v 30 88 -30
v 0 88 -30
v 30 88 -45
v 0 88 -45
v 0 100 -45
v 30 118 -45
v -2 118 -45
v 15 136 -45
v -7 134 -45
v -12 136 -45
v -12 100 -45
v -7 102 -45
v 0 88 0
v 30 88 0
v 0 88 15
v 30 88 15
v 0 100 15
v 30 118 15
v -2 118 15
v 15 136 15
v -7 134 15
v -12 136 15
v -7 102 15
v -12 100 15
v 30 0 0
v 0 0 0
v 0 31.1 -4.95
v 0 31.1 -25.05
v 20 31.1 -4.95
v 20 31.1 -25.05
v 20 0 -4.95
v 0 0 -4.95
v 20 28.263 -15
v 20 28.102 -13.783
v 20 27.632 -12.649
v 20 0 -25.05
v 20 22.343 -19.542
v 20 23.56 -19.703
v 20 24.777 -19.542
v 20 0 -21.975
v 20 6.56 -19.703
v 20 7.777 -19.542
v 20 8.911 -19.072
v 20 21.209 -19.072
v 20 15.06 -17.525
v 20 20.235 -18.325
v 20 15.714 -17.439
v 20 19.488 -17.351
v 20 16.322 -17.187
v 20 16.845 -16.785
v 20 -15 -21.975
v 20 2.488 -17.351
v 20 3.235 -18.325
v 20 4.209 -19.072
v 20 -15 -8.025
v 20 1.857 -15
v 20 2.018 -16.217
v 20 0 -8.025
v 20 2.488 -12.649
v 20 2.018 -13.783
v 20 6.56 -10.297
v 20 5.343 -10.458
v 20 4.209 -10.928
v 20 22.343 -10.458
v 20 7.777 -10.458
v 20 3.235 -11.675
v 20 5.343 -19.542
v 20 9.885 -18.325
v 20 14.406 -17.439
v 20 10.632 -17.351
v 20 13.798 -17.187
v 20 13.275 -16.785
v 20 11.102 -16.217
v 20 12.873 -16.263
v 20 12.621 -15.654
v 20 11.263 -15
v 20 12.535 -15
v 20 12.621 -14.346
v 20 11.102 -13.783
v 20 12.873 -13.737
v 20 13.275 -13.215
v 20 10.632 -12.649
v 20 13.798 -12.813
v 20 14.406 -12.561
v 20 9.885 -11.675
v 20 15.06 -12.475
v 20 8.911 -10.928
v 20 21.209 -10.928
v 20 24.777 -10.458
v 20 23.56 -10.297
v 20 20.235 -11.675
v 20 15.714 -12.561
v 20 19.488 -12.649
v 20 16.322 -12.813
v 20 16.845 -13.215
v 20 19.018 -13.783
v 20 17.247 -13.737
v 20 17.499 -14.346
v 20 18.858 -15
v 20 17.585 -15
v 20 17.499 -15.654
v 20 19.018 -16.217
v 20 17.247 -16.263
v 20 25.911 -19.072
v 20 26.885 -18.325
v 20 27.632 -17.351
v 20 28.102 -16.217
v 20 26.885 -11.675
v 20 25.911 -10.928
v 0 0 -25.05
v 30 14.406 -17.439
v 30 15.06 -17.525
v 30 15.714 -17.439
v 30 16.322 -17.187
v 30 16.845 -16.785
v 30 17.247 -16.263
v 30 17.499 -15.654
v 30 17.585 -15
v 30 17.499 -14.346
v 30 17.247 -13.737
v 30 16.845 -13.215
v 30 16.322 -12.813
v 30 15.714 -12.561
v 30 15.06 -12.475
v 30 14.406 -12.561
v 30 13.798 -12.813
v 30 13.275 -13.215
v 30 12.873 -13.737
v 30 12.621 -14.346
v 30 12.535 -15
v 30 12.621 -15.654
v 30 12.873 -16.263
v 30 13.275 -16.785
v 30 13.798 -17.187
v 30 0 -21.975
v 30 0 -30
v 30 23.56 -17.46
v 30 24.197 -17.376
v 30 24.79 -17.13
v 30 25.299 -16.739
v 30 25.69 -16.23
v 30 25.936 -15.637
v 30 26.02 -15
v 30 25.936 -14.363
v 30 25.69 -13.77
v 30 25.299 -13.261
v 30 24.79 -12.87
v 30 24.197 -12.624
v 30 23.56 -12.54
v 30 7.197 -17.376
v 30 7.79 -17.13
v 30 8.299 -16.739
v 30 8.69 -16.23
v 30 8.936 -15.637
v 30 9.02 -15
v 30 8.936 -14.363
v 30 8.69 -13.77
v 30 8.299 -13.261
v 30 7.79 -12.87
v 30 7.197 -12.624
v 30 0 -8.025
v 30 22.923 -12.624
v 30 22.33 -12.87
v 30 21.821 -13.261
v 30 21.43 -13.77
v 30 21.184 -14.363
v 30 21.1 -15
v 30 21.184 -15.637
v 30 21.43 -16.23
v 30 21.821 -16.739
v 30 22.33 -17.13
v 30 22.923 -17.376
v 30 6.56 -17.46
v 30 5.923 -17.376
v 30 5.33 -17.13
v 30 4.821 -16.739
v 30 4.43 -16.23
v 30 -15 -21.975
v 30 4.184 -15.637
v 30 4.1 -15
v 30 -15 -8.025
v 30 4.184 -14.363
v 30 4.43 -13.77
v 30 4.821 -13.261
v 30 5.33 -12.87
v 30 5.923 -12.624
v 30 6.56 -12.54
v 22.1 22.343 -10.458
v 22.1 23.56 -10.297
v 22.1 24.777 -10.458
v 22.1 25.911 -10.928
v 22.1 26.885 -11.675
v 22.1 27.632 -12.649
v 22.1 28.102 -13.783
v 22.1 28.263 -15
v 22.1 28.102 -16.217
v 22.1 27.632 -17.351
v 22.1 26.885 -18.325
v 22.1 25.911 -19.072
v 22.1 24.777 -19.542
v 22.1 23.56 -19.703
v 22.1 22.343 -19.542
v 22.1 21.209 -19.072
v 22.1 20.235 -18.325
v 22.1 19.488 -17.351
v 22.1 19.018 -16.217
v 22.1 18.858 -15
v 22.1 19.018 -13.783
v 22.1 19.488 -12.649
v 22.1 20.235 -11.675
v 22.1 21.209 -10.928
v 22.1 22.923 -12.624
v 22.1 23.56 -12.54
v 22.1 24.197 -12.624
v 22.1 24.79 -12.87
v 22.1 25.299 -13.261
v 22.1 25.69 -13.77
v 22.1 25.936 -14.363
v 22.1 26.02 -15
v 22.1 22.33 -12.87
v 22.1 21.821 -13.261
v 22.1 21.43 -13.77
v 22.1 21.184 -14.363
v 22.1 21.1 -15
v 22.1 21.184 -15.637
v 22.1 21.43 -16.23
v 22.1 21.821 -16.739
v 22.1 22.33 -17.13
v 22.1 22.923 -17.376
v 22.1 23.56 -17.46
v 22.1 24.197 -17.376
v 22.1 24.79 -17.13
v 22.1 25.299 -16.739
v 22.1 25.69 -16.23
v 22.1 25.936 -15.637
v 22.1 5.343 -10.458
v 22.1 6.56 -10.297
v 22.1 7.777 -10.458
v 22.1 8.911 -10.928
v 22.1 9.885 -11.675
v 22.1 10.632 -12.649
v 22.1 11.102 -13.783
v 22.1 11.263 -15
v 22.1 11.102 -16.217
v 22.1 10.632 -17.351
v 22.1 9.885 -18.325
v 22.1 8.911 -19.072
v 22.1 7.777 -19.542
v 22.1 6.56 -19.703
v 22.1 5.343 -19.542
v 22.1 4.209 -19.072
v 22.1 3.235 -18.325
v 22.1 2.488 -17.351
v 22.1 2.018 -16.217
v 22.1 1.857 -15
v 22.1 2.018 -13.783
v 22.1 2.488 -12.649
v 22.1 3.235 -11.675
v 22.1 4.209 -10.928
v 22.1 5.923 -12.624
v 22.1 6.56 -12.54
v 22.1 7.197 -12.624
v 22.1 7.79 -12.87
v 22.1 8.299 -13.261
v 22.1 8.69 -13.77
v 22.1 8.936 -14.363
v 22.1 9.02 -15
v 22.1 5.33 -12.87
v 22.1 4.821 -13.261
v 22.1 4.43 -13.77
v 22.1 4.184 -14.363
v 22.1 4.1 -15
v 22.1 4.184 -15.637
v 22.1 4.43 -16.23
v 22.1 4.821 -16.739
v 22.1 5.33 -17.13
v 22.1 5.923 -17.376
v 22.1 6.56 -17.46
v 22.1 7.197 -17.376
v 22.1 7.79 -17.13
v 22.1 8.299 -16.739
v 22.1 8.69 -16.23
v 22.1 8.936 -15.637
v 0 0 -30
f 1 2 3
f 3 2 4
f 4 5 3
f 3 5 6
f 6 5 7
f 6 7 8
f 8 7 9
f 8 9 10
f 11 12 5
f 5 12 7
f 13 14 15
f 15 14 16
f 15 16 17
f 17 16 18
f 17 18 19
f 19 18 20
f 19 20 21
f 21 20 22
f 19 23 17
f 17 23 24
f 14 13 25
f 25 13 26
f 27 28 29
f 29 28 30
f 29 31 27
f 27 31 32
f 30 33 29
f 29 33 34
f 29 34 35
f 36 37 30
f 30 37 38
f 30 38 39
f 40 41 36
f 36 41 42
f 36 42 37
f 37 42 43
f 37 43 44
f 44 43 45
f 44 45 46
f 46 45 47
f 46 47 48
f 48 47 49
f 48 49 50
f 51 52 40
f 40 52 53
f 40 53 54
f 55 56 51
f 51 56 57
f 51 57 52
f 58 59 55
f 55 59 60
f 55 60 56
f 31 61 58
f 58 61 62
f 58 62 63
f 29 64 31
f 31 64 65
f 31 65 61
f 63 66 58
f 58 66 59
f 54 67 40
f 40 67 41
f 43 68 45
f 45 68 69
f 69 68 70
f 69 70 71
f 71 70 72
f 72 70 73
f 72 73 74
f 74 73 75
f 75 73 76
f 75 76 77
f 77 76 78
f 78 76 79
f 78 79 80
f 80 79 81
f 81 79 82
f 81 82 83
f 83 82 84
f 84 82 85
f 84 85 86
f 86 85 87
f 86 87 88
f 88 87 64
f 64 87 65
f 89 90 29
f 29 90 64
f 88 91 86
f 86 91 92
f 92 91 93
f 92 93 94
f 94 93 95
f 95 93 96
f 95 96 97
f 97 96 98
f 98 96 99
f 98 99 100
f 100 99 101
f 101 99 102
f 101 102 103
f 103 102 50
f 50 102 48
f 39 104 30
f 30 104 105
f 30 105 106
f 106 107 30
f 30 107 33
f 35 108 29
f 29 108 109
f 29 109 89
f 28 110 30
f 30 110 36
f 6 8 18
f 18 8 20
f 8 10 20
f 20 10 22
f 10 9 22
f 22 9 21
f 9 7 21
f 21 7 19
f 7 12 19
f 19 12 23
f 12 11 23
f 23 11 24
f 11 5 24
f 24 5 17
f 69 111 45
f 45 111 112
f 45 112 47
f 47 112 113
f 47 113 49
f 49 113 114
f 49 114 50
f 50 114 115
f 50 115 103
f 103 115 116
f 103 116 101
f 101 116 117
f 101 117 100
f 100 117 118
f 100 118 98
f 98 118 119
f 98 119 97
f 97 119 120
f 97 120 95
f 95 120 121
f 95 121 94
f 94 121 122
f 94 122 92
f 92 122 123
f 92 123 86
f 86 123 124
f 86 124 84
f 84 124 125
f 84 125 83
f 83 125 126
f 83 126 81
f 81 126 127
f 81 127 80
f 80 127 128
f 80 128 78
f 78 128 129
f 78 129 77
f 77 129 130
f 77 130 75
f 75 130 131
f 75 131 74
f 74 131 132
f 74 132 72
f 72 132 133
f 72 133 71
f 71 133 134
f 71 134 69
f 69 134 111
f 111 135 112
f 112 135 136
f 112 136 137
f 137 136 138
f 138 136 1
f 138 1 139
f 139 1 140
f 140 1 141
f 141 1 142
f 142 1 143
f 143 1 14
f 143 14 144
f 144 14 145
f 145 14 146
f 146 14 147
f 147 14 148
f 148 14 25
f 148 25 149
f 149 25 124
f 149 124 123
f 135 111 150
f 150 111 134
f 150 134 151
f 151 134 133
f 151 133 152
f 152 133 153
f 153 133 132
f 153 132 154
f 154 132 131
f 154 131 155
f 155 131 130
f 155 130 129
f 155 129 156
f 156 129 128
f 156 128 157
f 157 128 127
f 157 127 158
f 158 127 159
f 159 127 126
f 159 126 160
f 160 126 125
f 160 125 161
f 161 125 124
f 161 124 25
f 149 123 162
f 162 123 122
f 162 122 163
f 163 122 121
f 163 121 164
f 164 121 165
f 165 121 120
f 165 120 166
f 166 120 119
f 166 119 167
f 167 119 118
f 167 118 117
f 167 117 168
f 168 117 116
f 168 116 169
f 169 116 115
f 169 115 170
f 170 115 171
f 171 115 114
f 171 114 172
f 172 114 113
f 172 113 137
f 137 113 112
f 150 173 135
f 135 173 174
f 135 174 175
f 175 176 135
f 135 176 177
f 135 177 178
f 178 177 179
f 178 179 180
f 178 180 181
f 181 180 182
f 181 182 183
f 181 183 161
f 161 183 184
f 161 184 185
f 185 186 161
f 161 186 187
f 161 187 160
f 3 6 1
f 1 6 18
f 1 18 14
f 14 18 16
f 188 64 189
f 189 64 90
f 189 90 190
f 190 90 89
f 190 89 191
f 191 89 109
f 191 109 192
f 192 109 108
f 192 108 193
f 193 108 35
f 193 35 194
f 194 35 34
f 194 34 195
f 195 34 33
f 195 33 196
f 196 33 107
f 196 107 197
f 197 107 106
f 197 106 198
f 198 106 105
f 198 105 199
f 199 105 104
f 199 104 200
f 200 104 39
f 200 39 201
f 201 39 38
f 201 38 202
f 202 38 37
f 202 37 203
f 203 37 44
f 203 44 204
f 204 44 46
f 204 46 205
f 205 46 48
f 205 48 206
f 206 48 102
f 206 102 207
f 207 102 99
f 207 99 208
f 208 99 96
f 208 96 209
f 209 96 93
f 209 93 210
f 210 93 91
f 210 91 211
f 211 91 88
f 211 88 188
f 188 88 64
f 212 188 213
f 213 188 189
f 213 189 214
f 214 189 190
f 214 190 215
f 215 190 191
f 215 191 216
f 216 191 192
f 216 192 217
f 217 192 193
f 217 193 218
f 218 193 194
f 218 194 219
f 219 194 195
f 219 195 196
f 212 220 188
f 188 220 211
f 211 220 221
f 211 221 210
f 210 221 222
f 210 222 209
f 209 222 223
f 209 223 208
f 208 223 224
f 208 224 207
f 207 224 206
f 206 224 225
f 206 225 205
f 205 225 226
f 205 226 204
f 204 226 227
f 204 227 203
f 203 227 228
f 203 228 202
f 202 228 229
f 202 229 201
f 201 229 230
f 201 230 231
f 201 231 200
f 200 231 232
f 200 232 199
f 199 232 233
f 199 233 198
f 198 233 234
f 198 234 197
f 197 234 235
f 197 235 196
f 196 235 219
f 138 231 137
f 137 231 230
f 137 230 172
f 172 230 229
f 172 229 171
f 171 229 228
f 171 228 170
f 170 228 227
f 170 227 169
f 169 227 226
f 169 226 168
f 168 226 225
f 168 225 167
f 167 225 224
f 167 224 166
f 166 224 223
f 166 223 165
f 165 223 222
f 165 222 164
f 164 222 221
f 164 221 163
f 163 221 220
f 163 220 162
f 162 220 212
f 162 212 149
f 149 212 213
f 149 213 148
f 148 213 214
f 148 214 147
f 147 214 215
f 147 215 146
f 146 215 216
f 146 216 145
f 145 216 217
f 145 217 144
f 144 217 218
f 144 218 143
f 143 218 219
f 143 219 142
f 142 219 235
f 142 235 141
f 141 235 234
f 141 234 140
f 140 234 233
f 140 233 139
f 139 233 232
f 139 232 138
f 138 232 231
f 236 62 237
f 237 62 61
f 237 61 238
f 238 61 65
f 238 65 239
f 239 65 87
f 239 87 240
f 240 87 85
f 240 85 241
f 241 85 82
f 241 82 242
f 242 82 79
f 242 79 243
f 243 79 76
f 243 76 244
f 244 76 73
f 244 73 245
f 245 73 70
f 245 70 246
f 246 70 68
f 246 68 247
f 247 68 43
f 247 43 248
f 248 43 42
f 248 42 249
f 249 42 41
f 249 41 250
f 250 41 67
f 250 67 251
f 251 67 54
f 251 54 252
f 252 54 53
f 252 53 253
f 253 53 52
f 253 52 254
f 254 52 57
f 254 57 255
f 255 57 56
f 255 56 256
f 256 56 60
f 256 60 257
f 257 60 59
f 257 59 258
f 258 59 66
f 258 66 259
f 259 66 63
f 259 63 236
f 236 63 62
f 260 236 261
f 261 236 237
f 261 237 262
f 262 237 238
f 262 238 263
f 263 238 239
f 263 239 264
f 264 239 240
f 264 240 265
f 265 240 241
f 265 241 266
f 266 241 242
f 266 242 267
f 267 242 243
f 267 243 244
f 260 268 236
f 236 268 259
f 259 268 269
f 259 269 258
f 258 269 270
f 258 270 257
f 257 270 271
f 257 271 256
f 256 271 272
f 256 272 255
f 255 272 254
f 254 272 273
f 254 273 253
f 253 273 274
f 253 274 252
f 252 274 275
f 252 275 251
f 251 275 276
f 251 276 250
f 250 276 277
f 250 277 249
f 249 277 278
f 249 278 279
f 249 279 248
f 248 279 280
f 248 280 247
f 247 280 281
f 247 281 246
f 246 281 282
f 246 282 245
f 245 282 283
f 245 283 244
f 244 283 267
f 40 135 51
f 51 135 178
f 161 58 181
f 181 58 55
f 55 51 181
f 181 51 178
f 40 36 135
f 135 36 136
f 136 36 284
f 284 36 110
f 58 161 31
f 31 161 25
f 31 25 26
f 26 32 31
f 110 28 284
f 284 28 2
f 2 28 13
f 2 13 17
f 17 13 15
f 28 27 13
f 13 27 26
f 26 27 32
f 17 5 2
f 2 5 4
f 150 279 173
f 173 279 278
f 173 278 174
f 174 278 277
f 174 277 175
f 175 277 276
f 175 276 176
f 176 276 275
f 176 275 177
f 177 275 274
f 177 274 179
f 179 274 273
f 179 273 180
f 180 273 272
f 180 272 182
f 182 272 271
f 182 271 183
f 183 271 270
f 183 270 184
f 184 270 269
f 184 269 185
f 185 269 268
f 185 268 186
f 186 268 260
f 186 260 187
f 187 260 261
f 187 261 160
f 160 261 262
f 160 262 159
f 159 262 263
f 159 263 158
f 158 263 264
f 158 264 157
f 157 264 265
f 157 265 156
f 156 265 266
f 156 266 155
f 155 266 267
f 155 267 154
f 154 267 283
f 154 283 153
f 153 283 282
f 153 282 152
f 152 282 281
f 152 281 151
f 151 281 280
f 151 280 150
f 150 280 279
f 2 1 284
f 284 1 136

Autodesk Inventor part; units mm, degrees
ref_plane "YZ Plane" through (0, 0, 0) normal (1, 0, 0) x (0, 1, 0)
ref_plane "XZ Plane" through (0, 0, 0) normal (0, 1, 0) x (-1, 0, 0)
sketch "Sketch1" plane through (0, 0, 0) normal (0, 0, 1) x (1, 0, 0)
  line L0 (0, 0) -> (25, 0)
  line L1 (25, 0) -> (25, 40)
  line L2 (25, 40) -> (0, 40)
  line L3 (0, 40) -> (0, 0)
  dimension "d1" = 25
  dimension "d2" = 40
  dimension "d3" = 25
extrude "Extrusion1" add sketch "Sketch1" against normal blind 30
sketch "Sketch2" plane through (25, 0, 0) normal (1, 0, 0) x (0, 0, -1)
  line L0 (0, 0) -> (30, 0) projected
  circle A0 centre (15, 6.56) radius 2.46
extrude "Extrusion2" cut sketch "Sketch2" against normal blind 30
sketch "Sketch3" plane through (0, 0, 0) normal (-1, 0, 0) x (0, 0, 1)
  line L0 (0, 0) -> (-30, 0) projected
  line L1 (-25.05, 0) -> (-4.95, 0)
  line L2 (-4.95, 0) -> (-4.95, 33.12)
  line L3 (-4.95, 33.12) -> (-25.05, 33.12)
  line L4 (-25.05, 33.12) -> (-25.05, 0)
  dimension "d11" = 20.1
extrude "Extrusion3" cut sketch "Sketch3" against normal blind 20
sketch "Sketch4" plane through (0, 0, 0) normal (0, -1, 0) x (1, 0, 0)
  line L0 (20, -4.95) -> (20, -25.05) projected
  line L1 (20, -15) -> (25, -15)
  line L2 (25, 0) -> (25, -30) projected
  line L3 (20, -8.025) -> (25, -8.025)
  line L4 (25, -8.025) -> (25, -21.975)
  line L5 (25, -21.975) -> (20, -21.975)
  line L6 (20, -21.975) -> (20, -8.025)
  line L7 (20, -8.025) -> (25, -21.975) construction
  line L8 (25, -8.025) -> (20, -21.975) construction
  line L9 (25, -12.54) -> (25, -17.46) projected
  point P0 (0, 0)
  point P1 (22.5, -15)
  dimension "d14" = 13.95
extrude "Extrusion4" add sketch "Sketch4" along normal blind 15
sketch "Sketch5" plane through (20, 0, 0) normal (-1, 0, 0) x (0, 0, 1)
  circle A0 centre (-15, 6.56) radius 2.46 projected
  circle A1 centre (-15, 6.56) radius 4.7025
  circle A2 centre (-15, 6.56) radius 2.46 projected
  circle A3 centre (-15, 6.56) radius 2.46
  point P0 (0, 0)
  dimension "d17" = 9.405
extrude "Extrusion5" cut sketch "Sketch5" against normal blind 2.1
sketch "Sketch6" plane through (25, 0, 0) normal (1, 0, 0) x (0, 0, -1)
  circle A0 centre (15, 6.56) radius 4.7025 projected
  line L0 (15, 6.56) -> (15, 23.56)
  circle A1 centre (15, 23.56) radius 2.46
  point P0 (0, 0)
  dimension "d20" = 17
  dimension "d21" = 4.92
extrude "Extrusion6" cut sketch "Sketch6" against normal blind 10 contours A1
sketch "Sketch7" plane through (20, 0, 0) normal (-1, 0, 0) x (0, 0, 1)
  circle A0 centre (-15, 23.56) radius 2.46 projected
  circle A1 centre (-15, 23.56) radius 4.7025
  point P0 (0, 0)
  dimension "d24" = 9.405
extrude "Extrusion7" cut sketch "Sketch7" against normal blind 2.1
sketch "Sketch9" plane through (25, 0, 0) normal (1, 0, 0) x (0, 0, -1)
  circle A0 centre (15, 6.56) radius 2.46 projected
  circle A1 centre (15, 6.56) radius 2.46
  circle A2 centre (15, 23.56) radius 2.46 projected
  circle A3 centre (15, 23.56) radius 2.46
  line L0 (30, 40) -> (30, 0) projected
  line L1 (30, 0) -> (30, 40)
  line L2 (30, 40) -> (0, 40)
  line L3 (0, 40) -> (0, 0)
  line L4 (0, 0) -> (8.025, 0) projected
  line L5 (21.975, 0) -> (21.975, -15)
  line L6 (21.975, -15) -> (8.025, -15)
  line L7 (8.025, -15) -> (8.025, 0)
  line L8 (0, 0) -> (8.025, 0)
  line L9 (21.975, 0) -> (30, 0)
extrude "Extrusion8" add sketch "Sketch9" along normal blind 5
sketch "Sketch10" plane through (0, 40, 0) normal (0, 1, 0) x (1, 0, 0)
  line L0 (0, 30) -> (30, 30) projected
  line L1 (30, 0) -> (0, 0) projected
  line L2 (0, 30) -> (30, 30)
  line L3 (30, 30) -> (30, 0)
  line L4 (30, 0) -> (0, 0)
  line L5 (0, 0) -> (0, 30)
extrude "Extrusion9" add sketch "Sketch10" along normal blind 30
sketch "Sketch12" plane through (30, 0, 0) normal (1, 0, 0) x (0, 0, -1)
  circle A0 centre (15, 6.56) radius 2.46 projected
  line L0 (15, 6.56) -> (15, 15.06)
  circle A1 centre (15, 15.06) radius 2.525
  point P0 (0, 0)
  dimension "d31" = 8.5
  dimension "d33" = 5.05
extrude "Extrusion10" cut sketch "Sketch12" against normal blind 30 contours A1
sketch "Sketch14" plane through (0, 0, 0) normal (0, 0, 1) x (1, 0, 0)
  line L0 (30, 70) -> (0, 70) projected
  line L1 (0, 70) -> (0, 85)
  line L2 (30, 0) -> (30, 70) projected
  line L3 (30, 118) -> (30, 70)
  line L4 (30, 105) -> (30, 100)
  line L5 (-7, 134) -> (-12, 136)
  line L6 (-7, 102) -> (-12, 100)
  line L7 (-7, 102) -> (-2, 118)
  line L8 (-2, 118) -> (-7, 134)
  line L9 (15, 136) -> (30, 118)
  line L10 (-12, 136) -> (15, 136)
  line L11 (0, 85) -> (0, 100)
  line L12 (0, 100) -> (-12, 100)
  point P0 (0, 0)
  dimension "d82" = 12
extrude "Extrusion12" add sketch "Sketch14" against normal blind 30
sketch "Sketch15" plane through (0, 0, -25.05) normal (-1, 0, 0) x (0, 0, 1)
  line L0 (0, 33.12) -> (20.1, 33.12) projected
  line L1 (20.1, 33.12) -> (20.1, 0) projected
  line L2 (0, 33.12) -> (20.1, 33.12)
  line L3 (20.1, 33.12) -> (20.1, 31.1)
  line L4 (20.1, 31.1) -> (0, 31.1)
  line L5 (0, 31.1) -> (0, 33.12)
  point P0 (25.05, 0)
  dimension "d57" = 2.02
extrude "Extrusion13" add sketch "Sketch15" against normal blind 20
sketch "Sketch23" plane through (0, 0, 0) normal (0, 0, 1) x (1, 0, 0)
  line L0 (0, 100) -> (-12, 100) projected
  line L1 (0, 100) -> (-12, 100)
  line L2 (-12, 100) -> (-7, 102) projected
  line L3 (-12, 100) -> (-7, 102)
  line L4 (-7, 102) -> (-2, 118) projected
  line L5 (-7, 102) -> (-2, 118)
  line L6 (-2, 118) -> (-7, 134) projected
  line L7 (-2, 118) -> (-7, 134)
  line L8 (-12, 136) -> (15, 136) projected
  line L9 (-7, 134) -> (-12, 136)
  line L10 (-12, 136) -> (15, 136)
  line L11 (15, 136) -> (30, 118) projected
  line L12 (15, 136) -> (30, 118)
  line L13 (30, 118) -> (30, 88)
  line L14 (30, 0) -> (30, 118) projected
  line L15 (30, 88) -> (0, 88)
  line L16 (0, 88) -> (0, 100)
  point P0 (0, 0)
  dimension "d83" = 30
  dimension "d84" = 30
extrude "Extrusion14" add sketch "Sketch23" along normal blind 15
ref_plane "Work Plane1" through (0, 0, -15) normal (0, 0, 1) x (1, 0, 0)
mirror "Mirror1" about plane through (0, 0, -15) normal (0, 0, 1) of "Extrusion14"
properties part number "rec_b_32mm_x_60mm"
